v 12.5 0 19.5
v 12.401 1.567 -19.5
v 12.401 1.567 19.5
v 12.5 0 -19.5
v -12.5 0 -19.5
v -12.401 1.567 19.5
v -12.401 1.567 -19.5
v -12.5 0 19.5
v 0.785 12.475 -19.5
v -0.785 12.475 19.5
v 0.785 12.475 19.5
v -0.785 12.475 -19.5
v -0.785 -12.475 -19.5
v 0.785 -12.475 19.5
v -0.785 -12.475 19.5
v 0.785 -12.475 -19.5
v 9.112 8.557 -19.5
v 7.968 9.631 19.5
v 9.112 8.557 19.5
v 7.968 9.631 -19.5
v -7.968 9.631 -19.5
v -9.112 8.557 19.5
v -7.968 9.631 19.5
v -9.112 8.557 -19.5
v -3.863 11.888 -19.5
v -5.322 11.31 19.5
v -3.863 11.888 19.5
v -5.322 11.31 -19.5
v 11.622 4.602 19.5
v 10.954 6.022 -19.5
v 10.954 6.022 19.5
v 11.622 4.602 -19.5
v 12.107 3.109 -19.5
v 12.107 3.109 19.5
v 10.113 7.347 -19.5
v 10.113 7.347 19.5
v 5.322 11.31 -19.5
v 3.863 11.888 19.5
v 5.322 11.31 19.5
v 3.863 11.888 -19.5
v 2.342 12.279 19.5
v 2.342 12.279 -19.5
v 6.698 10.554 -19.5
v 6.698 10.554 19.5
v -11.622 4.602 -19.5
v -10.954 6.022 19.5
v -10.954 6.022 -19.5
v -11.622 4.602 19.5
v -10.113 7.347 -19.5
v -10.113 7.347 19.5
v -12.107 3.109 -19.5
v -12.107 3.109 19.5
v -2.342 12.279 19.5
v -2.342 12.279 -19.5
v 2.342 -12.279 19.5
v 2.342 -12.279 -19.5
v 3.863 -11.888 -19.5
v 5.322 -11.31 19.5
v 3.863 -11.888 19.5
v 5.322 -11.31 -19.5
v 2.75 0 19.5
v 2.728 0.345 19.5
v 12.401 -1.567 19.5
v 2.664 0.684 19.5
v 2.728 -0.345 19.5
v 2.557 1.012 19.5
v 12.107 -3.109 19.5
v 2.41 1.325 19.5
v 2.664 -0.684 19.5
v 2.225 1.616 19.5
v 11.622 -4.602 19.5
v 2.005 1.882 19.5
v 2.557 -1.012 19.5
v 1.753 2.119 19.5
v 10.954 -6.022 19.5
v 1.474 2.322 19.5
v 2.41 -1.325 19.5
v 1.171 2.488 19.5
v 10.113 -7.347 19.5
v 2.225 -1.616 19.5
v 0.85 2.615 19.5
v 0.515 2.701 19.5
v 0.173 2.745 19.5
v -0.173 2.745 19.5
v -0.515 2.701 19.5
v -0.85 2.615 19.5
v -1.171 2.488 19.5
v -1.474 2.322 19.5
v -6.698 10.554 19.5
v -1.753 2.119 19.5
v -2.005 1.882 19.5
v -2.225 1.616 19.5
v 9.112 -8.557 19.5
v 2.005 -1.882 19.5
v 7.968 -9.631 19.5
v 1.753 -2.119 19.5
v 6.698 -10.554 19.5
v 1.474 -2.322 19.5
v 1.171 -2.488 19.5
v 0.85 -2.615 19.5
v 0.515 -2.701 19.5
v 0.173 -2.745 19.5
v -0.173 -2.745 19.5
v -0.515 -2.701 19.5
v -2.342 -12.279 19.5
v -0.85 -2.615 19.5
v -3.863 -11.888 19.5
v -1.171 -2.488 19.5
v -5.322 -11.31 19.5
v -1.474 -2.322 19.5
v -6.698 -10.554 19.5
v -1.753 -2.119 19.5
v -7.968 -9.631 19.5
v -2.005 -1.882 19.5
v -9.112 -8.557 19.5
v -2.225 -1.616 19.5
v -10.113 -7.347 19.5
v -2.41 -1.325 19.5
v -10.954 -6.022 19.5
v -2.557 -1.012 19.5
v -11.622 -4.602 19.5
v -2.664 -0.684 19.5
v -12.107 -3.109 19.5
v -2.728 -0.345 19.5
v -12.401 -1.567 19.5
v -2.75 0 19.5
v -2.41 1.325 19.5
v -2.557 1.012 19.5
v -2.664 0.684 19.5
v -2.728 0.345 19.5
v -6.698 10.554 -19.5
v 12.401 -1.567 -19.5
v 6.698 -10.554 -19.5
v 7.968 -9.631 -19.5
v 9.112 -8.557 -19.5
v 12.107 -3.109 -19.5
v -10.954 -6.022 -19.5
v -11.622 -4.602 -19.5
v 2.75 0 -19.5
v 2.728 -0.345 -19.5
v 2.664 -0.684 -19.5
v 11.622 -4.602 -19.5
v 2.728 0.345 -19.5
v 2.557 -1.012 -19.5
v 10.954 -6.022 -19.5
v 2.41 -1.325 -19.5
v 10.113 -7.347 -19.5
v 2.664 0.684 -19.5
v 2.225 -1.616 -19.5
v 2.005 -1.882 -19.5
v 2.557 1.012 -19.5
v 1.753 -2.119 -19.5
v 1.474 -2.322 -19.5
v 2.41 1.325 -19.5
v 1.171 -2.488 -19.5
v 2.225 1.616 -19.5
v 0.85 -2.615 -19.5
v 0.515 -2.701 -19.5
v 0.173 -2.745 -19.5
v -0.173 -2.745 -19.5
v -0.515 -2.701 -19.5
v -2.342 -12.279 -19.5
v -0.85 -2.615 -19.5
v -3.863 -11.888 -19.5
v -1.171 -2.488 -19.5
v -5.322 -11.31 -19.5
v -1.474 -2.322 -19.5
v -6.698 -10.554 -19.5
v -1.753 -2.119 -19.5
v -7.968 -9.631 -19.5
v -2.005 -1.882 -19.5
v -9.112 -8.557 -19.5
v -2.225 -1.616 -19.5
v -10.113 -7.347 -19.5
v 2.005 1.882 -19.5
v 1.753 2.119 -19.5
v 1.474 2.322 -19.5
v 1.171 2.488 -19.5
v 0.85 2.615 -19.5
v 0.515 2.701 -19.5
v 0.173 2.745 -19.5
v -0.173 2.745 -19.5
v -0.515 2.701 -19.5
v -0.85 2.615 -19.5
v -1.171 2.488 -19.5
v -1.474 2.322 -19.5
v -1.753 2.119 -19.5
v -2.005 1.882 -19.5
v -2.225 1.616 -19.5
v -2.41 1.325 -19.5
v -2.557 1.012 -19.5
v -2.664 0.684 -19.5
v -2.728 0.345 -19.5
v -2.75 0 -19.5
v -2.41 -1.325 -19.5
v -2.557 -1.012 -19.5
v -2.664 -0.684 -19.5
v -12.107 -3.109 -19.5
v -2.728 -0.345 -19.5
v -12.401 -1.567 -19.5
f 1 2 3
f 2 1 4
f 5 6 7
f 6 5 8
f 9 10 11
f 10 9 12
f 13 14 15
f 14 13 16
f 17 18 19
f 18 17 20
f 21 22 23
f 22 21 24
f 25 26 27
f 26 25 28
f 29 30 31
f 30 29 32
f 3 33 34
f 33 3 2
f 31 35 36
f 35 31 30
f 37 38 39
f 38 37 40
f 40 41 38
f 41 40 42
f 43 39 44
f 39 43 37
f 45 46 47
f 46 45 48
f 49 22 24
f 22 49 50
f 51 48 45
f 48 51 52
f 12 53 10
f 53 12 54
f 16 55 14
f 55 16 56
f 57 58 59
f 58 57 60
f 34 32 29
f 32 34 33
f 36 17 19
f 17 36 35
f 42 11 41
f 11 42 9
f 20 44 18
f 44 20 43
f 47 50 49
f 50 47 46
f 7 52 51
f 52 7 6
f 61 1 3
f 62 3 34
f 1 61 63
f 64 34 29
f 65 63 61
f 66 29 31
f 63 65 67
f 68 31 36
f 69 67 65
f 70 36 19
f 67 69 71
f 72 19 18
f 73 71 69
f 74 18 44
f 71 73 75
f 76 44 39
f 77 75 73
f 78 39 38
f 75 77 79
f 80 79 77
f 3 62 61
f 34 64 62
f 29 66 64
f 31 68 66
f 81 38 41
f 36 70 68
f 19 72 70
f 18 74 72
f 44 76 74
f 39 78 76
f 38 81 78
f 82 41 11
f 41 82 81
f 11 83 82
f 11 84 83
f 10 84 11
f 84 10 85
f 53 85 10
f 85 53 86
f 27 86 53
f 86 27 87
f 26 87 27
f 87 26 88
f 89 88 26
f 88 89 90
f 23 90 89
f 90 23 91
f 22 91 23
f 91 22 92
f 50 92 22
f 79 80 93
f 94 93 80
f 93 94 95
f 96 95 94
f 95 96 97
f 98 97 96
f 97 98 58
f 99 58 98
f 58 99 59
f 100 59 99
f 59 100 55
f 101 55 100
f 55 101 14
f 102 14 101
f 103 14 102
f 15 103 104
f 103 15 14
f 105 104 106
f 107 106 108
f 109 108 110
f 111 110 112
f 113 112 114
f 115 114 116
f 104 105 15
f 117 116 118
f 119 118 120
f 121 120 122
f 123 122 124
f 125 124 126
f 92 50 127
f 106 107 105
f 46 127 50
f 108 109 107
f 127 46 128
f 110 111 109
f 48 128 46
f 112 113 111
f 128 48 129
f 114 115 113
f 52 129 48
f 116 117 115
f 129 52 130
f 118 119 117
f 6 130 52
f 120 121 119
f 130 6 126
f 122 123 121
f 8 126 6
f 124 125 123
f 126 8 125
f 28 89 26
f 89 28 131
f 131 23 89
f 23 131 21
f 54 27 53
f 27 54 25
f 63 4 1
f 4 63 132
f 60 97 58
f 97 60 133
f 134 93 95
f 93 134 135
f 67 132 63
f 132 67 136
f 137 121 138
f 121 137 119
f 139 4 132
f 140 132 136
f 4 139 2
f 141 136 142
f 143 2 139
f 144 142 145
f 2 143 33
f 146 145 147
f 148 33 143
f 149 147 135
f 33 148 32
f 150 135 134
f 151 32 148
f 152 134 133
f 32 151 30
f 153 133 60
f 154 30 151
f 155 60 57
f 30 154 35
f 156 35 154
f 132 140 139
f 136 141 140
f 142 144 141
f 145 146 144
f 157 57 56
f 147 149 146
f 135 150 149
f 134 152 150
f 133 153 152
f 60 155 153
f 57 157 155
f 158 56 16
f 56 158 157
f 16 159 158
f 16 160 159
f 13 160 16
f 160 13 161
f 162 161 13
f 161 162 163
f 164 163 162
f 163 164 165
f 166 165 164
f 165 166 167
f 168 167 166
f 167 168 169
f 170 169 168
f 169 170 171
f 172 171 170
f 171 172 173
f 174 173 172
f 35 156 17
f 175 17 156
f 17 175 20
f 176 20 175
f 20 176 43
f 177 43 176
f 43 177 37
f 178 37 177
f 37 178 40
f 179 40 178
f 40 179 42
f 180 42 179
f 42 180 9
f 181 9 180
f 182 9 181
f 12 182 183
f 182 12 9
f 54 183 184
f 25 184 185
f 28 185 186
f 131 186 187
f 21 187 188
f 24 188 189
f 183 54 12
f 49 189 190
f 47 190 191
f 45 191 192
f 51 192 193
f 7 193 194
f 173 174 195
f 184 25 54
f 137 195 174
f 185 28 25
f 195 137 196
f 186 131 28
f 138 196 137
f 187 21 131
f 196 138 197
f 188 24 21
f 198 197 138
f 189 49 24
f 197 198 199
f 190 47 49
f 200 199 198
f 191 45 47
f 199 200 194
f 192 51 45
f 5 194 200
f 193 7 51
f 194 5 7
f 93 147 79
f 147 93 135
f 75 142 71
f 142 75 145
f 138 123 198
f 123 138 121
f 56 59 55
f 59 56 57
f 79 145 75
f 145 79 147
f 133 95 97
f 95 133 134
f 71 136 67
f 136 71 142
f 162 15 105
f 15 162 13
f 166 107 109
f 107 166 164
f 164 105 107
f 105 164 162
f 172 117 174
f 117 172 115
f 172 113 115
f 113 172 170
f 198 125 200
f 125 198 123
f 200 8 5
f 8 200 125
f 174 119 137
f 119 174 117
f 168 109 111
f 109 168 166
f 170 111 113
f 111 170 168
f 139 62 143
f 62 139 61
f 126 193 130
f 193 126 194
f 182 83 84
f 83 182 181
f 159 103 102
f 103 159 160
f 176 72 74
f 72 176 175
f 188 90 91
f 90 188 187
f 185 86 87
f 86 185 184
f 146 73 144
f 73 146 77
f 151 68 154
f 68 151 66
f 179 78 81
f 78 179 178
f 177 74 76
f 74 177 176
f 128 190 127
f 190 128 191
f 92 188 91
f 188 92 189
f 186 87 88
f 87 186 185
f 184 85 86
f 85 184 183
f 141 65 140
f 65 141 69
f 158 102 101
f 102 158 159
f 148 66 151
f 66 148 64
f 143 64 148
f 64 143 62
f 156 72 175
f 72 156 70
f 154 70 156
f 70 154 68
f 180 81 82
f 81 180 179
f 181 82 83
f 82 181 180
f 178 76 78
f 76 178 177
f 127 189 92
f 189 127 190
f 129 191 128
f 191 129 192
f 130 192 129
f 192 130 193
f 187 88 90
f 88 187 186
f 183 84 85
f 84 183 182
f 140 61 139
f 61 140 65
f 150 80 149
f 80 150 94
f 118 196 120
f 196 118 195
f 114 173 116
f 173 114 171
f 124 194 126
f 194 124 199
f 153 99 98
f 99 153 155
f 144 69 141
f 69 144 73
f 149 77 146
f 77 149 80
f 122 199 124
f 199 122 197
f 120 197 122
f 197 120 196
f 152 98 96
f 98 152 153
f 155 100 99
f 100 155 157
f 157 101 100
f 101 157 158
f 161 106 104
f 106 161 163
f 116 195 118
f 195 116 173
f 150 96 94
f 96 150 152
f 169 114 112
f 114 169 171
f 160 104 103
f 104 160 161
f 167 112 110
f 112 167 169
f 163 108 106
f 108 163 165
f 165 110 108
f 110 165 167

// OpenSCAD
$fn = 50;


difference() {
	union() {
		translate(v = [0, 0, -19.5000000000]) {
			cylinder(h = 39, r = 12.5000000000);
		}
	}
	union() {
		translate(v = [0, 0, -100.0000000000]) {
			cylinder(h = 200, r = 2.7500000000);
		}
	}
}
